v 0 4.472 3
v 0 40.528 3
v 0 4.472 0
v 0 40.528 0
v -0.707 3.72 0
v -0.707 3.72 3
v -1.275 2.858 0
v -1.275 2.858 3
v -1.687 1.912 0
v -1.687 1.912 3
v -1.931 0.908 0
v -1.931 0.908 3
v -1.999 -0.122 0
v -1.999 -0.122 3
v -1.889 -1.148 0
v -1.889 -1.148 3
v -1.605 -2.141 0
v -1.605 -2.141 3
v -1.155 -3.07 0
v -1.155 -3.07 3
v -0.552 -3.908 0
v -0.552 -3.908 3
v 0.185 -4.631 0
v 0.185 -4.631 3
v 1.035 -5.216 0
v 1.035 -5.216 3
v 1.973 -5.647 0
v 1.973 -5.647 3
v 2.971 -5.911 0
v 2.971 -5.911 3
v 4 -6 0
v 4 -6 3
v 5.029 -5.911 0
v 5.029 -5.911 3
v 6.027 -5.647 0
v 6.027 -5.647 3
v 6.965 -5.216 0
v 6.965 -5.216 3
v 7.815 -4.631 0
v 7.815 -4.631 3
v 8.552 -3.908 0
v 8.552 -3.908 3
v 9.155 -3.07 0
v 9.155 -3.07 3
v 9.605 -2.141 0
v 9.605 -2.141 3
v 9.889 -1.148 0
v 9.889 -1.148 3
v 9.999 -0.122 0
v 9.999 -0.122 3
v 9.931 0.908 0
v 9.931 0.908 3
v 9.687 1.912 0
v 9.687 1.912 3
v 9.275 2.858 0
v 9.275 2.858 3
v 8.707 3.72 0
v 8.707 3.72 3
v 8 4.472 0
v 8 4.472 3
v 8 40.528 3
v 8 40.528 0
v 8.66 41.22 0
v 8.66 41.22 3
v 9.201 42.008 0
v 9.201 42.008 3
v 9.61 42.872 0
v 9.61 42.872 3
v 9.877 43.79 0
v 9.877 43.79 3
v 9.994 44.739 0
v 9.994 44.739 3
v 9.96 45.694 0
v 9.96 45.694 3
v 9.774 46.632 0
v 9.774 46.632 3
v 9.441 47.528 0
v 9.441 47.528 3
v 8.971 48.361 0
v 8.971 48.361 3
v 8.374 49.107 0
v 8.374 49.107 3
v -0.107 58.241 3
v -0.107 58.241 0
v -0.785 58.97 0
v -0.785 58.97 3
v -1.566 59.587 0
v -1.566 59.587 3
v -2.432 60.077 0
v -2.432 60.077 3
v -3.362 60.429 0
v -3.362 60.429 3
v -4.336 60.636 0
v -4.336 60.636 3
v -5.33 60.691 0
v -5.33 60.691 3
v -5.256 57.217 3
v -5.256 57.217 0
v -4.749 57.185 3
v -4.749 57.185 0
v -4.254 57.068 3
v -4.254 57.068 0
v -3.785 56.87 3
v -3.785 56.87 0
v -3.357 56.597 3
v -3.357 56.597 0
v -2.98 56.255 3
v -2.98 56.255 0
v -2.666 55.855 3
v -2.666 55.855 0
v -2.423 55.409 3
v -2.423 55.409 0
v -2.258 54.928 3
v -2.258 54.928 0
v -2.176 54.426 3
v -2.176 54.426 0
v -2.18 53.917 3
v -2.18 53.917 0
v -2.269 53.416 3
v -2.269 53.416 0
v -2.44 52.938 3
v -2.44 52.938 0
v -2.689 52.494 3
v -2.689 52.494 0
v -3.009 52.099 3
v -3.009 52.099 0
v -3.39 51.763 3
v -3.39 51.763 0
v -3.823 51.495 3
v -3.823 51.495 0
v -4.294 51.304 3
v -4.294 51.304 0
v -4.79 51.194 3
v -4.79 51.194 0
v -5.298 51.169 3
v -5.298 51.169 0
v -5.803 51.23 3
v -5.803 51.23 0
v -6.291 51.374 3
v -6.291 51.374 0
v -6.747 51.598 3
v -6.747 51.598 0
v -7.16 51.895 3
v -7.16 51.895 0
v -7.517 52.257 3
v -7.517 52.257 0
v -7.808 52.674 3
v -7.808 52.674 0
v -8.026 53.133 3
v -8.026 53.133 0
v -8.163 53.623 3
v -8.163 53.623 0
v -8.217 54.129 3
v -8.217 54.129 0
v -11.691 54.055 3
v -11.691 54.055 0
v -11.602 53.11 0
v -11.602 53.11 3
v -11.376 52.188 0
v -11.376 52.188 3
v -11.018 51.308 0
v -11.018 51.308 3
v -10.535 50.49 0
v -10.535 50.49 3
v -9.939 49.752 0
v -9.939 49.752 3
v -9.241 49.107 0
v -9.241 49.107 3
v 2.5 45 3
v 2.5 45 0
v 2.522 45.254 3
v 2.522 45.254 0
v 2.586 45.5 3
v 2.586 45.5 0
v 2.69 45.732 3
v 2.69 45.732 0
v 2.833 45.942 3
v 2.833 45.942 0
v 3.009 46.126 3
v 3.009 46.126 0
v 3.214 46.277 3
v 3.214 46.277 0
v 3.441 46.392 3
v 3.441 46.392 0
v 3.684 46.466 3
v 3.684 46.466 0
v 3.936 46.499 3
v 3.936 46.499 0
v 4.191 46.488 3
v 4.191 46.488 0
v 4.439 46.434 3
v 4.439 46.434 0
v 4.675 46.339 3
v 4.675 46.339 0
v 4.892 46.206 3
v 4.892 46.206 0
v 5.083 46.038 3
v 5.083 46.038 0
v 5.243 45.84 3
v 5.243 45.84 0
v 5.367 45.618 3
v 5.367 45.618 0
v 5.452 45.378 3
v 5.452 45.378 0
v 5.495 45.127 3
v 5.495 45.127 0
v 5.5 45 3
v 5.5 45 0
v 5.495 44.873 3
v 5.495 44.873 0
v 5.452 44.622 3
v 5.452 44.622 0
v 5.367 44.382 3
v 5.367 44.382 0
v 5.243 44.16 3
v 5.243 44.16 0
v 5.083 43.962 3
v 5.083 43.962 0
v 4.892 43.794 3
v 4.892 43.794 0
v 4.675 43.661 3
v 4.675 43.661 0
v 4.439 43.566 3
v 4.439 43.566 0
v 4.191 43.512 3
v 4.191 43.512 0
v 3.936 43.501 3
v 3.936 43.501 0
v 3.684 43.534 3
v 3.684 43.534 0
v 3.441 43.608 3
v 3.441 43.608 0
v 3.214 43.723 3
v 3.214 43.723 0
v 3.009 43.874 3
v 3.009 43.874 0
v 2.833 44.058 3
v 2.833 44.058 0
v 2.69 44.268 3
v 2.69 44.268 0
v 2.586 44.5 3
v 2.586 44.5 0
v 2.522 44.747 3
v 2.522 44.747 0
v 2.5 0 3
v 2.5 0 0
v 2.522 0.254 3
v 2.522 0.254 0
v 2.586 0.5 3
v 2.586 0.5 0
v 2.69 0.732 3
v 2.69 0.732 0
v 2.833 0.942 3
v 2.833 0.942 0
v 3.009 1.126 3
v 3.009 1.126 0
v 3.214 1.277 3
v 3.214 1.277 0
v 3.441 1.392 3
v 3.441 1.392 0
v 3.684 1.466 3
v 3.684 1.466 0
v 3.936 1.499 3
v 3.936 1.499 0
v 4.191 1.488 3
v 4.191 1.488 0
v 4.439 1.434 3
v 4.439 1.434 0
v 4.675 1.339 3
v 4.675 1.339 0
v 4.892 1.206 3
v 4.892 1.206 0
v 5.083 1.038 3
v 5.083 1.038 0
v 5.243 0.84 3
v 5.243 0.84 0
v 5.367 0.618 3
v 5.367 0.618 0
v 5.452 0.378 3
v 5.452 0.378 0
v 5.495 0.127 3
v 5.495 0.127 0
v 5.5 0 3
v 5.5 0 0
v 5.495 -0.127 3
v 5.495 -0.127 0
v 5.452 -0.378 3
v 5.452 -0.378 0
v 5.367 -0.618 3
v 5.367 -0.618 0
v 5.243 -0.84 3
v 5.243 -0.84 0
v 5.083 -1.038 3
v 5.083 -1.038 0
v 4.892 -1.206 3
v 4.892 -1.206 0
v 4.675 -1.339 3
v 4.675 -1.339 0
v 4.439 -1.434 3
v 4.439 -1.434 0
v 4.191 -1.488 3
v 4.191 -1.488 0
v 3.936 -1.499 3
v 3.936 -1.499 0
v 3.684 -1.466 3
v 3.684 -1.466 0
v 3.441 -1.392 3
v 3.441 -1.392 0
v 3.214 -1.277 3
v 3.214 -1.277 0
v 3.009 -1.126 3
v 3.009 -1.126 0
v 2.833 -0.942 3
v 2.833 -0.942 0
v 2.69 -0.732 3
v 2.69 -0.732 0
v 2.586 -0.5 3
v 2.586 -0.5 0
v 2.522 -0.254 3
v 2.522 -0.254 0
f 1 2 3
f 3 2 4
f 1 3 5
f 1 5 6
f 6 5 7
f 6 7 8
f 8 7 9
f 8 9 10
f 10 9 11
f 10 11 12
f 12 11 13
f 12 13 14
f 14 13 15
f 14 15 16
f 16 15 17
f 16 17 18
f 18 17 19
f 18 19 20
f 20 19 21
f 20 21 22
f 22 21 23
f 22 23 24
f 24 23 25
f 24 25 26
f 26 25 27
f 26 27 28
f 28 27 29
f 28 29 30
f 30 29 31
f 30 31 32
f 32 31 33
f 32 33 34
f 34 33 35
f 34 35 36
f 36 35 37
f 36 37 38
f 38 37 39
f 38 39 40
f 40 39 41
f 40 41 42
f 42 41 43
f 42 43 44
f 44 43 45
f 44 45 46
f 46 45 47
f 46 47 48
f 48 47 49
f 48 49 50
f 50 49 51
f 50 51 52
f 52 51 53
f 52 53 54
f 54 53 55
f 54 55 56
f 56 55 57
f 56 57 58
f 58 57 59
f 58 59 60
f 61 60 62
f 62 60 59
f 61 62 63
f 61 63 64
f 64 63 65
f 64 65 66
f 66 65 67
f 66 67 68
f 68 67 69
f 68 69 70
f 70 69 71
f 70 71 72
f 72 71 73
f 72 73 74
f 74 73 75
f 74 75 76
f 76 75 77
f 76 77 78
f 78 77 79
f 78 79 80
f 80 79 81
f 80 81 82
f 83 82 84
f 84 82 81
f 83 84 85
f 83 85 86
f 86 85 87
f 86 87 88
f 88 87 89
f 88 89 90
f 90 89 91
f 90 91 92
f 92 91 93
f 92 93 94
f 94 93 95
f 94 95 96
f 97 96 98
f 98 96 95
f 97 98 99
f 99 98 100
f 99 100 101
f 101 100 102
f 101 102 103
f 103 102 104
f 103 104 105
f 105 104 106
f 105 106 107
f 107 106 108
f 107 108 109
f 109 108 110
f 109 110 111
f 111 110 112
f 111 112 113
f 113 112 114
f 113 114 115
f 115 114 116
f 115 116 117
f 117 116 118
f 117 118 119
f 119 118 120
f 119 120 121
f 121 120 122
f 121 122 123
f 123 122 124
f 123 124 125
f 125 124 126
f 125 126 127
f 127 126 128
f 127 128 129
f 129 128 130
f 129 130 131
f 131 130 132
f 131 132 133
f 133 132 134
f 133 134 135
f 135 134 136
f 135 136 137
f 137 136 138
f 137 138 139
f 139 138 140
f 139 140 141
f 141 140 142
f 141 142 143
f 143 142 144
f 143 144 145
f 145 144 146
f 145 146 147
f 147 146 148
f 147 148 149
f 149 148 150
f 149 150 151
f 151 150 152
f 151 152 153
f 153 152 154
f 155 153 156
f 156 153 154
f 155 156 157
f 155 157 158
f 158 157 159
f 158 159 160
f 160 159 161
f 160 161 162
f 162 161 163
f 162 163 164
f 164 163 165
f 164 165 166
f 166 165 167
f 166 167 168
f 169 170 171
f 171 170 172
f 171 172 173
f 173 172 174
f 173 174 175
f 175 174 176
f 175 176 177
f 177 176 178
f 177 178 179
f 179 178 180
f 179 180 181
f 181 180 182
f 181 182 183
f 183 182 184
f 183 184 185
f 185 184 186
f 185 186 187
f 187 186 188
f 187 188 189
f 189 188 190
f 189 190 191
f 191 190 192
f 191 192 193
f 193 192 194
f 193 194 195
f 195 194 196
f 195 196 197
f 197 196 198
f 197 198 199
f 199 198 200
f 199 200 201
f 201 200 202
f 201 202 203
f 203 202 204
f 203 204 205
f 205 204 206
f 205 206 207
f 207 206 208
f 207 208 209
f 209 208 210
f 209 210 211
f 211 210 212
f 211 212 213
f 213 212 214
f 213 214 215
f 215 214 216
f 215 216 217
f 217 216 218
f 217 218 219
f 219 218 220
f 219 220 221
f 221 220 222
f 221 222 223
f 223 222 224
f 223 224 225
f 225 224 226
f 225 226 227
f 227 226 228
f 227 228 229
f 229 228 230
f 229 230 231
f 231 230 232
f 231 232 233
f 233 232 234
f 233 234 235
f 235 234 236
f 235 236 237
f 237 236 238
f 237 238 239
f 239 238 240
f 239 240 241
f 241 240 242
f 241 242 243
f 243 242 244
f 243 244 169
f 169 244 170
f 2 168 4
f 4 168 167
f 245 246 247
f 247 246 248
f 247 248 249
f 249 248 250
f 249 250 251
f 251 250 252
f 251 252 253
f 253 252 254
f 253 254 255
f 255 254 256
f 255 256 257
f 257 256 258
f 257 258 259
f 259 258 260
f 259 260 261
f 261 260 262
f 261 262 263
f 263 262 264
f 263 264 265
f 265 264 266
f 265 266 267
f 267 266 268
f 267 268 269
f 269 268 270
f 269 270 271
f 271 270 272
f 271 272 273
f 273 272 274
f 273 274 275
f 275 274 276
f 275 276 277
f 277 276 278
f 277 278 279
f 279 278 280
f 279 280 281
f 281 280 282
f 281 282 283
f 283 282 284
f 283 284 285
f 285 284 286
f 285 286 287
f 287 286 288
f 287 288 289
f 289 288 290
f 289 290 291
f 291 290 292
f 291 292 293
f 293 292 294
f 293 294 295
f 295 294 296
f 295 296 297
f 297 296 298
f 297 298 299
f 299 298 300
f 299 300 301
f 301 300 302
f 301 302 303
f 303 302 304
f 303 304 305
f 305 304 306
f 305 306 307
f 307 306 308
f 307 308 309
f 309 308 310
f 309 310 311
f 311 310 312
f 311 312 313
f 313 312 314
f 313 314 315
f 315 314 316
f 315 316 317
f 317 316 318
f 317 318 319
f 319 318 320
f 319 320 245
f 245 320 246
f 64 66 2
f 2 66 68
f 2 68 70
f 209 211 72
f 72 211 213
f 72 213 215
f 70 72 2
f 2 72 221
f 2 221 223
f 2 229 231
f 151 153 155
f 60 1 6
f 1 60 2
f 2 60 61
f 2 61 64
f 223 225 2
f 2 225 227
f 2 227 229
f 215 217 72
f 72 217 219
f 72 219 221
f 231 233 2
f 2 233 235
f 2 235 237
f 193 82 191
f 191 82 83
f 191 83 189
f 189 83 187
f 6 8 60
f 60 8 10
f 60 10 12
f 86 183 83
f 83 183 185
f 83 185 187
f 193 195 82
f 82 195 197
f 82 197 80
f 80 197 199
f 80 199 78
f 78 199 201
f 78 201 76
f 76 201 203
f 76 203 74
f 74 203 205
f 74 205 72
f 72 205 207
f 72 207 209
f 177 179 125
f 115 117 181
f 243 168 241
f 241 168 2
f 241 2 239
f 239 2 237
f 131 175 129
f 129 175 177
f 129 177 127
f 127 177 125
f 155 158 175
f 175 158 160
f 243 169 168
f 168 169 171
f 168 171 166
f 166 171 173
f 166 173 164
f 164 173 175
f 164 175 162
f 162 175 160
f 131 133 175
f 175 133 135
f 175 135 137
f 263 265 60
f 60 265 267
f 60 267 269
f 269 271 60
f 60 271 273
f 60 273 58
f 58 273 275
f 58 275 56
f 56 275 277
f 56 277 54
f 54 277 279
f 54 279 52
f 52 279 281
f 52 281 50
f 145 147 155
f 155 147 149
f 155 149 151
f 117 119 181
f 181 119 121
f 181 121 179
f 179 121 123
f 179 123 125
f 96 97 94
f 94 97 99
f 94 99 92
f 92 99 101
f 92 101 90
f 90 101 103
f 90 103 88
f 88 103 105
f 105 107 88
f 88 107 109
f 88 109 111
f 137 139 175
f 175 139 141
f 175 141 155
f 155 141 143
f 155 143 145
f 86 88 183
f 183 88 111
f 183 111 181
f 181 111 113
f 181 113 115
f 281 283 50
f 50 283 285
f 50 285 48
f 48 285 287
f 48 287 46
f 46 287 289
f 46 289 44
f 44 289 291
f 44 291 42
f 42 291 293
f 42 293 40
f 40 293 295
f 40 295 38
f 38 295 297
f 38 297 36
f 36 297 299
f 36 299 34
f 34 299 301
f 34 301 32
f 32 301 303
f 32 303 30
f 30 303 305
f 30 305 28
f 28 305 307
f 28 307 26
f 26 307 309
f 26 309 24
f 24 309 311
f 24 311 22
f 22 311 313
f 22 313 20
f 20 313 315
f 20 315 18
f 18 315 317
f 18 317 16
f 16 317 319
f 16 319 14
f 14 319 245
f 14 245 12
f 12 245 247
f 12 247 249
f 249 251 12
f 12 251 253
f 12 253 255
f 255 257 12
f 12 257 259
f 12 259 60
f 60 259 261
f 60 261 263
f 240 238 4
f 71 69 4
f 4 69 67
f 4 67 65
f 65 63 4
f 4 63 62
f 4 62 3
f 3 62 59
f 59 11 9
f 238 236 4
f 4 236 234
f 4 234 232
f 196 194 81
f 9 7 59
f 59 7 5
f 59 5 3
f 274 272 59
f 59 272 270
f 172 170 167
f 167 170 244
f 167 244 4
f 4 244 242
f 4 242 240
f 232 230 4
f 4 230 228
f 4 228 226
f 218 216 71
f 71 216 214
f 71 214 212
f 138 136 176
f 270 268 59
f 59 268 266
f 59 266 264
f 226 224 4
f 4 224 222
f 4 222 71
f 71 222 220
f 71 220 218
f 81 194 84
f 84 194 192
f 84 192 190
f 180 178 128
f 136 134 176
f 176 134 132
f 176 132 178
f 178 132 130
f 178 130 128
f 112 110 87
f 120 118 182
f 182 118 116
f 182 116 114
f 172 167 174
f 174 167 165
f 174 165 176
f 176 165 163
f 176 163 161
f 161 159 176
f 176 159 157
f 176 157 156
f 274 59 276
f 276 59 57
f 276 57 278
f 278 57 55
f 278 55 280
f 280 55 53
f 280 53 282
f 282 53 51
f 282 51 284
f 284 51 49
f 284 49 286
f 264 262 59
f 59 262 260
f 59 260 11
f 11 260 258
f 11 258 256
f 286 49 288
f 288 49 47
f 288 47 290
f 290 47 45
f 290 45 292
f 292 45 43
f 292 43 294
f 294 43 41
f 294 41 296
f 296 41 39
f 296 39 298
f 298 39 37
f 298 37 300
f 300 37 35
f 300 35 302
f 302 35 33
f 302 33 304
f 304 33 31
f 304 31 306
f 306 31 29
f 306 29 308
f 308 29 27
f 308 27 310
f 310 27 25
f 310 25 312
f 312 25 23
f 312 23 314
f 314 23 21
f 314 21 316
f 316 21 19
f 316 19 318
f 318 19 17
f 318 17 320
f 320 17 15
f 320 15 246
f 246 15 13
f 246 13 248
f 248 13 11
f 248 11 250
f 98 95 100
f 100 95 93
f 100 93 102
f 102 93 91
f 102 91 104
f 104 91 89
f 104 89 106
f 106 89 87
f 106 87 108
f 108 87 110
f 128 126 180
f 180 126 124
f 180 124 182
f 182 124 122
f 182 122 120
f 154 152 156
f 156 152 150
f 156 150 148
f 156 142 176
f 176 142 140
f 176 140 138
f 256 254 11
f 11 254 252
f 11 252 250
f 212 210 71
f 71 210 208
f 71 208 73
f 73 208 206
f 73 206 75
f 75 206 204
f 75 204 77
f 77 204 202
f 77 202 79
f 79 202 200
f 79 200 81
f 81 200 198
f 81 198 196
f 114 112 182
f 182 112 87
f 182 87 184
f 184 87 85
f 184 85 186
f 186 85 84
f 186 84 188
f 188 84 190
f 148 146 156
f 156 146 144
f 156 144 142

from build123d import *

# Parameters (mm, degrees)
ESQUISSE1_R        = 1.5
BOSS_EXTRU_1_DEPTH = 3


with BuildPart() as part:
    # Esquisse1 → Boss.-Extru.1 (new body)
    with BuildSketch(Plane.XY):
        with BuildLine():
            Line((0, 40.527864045), (0, 4.472135955))
            ThreePointArc((0, 4.472135955), (4, -6), (8, 4.472135955))
            Line((8, 4.472135955), (8, 40.527864045))
            ThreePointArc((8, 40.527864045), (9.994318296, 44.738947964), (8.373640852, 49.107464631))
            Line((8.373640852, 49.107464631), (-0.107464631, 58.241283406))
            ThreePointArc((-0.107464631, 58.241283406), (-2.431884599, 60.07708187), (-5.329514747, 60.690941556))
            Line((-5.329514747, 60.690941556), (-5.256204762, 57.21671493))
            ThreePointArc((-5.256204762, 57.21671493), (-3.098991339, 56.376035281), (-2.168061381, 54.256204762))
            ThreePointArc((-2.168061381, 54.256204762), (-5.128571549, 51.168061381), (-8.21671493, 54.128571549))
            Line((-8.21671493, 54.128571549), (-11.690941556, 54.055261564))
            ThreePointArc((-11.690941556, 54.055261564), (-11.017535525, 51.308353115), (-9.241283406, 49.107464631))
            Line((-9.241283406, 49.107464631), (-0.163194172, 40.679373392))
            Line((-0.163194172, 40.679373392), (0, 40.527864045))
        make_face()
        with Locations((4, 0)):
            Circle(ESQUISSE1_R, mode=Mode.SUBTRACT)
        with Locations((4, 45)):
            Circle(ESQUISSE1_R, mode=Mode.SUBTRACT)
    extrude(amount=BOSS_EXTRU_1_DEPTH)


solid = part.part
